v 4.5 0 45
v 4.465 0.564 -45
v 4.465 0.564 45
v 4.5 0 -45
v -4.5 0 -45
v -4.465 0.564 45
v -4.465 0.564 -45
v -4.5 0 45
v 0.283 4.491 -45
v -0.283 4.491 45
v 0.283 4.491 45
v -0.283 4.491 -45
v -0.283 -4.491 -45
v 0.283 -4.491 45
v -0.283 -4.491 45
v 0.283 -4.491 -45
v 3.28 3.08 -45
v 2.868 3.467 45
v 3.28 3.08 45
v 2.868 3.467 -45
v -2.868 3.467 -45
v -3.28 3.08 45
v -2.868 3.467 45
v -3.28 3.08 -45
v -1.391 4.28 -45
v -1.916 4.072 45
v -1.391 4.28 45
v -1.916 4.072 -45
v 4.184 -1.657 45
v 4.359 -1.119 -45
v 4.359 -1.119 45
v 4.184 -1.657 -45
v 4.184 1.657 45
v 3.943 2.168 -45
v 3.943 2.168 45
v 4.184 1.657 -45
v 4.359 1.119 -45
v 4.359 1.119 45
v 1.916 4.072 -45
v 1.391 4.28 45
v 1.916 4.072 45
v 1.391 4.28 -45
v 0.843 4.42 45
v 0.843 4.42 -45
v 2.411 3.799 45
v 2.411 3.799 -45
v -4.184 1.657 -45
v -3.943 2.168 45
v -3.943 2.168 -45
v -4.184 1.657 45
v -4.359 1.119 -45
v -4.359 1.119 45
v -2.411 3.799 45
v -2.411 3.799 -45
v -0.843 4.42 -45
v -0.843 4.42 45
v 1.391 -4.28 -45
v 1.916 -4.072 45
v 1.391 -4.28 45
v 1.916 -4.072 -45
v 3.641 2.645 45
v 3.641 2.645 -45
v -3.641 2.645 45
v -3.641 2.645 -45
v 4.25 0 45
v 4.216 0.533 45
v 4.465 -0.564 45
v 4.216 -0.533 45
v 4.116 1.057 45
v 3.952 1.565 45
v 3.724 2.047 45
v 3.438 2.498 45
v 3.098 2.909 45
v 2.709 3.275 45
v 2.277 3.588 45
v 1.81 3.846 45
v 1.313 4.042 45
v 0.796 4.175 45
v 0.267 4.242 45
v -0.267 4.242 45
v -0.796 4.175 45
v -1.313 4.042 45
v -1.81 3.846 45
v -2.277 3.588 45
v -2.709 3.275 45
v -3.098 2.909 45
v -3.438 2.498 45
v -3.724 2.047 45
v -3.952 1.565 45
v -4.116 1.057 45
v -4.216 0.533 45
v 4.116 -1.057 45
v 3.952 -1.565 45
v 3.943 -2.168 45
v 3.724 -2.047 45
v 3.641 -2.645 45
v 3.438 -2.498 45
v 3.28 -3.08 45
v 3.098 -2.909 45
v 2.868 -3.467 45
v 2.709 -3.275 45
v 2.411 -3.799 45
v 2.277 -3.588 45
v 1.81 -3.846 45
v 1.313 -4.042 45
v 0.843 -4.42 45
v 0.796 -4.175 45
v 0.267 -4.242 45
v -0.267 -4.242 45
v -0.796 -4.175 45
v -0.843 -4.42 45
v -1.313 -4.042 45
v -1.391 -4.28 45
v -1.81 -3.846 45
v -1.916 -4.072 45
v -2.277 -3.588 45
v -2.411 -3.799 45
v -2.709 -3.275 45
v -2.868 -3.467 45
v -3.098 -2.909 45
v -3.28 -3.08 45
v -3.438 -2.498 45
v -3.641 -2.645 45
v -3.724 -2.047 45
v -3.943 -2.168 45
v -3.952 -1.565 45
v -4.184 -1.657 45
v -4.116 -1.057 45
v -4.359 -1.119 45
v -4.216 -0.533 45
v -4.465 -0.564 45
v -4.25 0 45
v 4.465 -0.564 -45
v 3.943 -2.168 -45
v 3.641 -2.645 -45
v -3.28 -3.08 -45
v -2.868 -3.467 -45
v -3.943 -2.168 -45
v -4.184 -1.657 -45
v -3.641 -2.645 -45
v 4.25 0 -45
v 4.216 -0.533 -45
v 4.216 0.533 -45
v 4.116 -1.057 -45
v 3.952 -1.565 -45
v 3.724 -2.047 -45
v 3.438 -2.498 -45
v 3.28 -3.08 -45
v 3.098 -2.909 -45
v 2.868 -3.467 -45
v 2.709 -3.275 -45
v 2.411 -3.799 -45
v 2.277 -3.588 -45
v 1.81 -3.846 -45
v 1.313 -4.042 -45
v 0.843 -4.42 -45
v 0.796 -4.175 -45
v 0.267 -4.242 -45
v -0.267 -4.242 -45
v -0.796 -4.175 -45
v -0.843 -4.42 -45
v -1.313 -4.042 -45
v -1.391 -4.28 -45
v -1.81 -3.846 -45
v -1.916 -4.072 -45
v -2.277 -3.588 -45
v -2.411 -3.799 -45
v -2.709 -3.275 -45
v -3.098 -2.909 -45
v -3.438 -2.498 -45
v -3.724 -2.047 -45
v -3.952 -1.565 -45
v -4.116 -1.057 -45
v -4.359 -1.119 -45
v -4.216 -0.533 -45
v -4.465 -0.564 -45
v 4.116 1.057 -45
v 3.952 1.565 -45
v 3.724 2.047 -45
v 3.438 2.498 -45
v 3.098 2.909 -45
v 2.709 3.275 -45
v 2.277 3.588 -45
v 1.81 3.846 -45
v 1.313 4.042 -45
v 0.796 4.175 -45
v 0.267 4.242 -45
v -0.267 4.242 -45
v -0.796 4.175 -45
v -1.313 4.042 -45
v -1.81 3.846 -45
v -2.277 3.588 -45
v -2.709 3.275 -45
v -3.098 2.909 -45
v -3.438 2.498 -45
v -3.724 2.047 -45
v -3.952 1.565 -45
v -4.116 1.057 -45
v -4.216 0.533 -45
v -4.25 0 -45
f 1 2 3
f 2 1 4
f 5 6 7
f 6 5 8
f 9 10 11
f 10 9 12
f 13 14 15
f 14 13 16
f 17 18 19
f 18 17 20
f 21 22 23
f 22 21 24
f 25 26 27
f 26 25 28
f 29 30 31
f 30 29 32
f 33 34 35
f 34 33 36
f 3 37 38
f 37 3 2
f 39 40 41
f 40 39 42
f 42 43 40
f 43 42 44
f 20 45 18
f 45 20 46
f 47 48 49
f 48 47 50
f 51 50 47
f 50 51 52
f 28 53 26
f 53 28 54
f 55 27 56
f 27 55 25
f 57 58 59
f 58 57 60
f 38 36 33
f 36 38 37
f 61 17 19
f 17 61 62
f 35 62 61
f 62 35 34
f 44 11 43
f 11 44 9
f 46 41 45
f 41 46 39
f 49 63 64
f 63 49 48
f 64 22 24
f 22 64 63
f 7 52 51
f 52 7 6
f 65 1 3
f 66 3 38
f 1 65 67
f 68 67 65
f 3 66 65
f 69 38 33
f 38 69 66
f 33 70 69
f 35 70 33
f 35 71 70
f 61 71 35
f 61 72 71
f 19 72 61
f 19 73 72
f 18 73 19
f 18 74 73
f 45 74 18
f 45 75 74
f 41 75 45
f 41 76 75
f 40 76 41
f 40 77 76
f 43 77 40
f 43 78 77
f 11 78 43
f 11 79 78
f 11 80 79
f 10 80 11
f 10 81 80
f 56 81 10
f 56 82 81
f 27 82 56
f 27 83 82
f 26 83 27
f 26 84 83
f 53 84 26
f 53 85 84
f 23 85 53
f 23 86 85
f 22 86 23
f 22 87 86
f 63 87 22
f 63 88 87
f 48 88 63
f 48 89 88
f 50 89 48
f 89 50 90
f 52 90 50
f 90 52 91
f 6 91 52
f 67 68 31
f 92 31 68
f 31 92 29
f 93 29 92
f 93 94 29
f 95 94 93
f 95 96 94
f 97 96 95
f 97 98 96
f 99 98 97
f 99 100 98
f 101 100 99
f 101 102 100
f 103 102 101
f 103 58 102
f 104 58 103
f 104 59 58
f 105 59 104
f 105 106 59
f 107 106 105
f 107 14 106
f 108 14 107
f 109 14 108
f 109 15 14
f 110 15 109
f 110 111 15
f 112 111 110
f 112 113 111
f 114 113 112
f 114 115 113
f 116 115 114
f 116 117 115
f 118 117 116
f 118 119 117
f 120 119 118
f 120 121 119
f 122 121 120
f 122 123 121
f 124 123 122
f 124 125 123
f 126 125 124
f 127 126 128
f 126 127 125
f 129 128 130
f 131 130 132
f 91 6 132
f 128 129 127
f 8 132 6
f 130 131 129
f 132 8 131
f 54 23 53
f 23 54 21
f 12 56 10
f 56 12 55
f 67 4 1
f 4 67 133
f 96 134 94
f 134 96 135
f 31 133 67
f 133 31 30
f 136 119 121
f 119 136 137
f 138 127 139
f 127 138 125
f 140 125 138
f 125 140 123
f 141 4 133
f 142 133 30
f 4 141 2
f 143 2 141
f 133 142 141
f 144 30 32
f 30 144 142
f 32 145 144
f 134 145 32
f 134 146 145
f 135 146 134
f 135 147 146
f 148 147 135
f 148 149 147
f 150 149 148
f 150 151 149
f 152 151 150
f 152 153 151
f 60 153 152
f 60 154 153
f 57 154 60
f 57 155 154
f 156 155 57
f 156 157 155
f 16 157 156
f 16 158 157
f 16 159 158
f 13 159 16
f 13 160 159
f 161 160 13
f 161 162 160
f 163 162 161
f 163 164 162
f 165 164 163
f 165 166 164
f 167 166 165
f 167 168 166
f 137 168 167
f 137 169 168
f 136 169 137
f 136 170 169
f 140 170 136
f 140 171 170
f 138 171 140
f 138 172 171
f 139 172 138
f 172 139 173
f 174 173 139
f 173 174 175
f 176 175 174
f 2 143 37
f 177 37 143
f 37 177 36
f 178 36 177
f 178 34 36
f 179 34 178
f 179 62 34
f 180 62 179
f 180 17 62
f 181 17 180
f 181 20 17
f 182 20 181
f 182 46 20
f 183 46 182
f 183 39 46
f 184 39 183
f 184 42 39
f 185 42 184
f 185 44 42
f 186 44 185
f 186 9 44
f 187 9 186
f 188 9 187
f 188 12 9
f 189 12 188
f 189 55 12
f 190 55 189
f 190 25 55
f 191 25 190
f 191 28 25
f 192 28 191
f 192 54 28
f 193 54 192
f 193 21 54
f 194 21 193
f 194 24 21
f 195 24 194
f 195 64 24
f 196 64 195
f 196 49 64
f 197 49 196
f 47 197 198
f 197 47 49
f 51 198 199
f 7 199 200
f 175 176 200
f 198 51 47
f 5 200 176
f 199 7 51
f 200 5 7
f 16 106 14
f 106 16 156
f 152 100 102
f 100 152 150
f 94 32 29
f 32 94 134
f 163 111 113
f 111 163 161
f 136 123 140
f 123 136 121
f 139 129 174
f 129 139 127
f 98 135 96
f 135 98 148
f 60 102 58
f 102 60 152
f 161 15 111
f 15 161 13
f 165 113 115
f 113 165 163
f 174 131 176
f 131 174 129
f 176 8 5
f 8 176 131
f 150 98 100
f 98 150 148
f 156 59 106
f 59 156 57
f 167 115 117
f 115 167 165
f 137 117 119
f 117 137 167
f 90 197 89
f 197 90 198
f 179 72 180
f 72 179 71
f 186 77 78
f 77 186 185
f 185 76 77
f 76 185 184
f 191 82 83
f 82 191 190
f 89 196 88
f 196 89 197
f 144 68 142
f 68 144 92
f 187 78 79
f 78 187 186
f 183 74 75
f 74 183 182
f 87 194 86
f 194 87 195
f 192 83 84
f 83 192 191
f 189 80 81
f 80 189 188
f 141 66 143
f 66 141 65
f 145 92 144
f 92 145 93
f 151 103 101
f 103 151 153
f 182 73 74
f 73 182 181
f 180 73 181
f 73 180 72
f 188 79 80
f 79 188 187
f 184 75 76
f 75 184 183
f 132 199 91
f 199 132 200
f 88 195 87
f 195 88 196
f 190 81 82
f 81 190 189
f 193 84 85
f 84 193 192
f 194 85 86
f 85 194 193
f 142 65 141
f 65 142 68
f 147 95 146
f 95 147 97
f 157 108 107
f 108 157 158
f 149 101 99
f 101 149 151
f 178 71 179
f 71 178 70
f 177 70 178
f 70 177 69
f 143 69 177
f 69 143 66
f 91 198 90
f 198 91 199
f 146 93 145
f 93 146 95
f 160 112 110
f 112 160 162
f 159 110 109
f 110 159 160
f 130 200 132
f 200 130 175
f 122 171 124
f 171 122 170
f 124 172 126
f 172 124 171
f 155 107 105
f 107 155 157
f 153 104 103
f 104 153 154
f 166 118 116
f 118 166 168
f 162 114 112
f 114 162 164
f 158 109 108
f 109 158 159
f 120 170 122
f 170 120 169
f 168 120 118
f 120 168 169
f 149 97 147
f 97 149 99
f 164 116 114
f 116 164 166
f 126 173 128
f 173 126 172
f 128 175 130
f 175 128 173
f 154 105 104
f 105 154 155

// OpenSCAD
$fn = 50;


difference() {
	union() {
		translate(v = [0, 0, -45.0000000000]) {
			cylinder(h = 90, r = 4.5000000000);
		}
	}
	union() {
		translate(v = [0, 0, -100.0000000000]) {
			cylinder(h = 200, r = 4.2500000000);
		}
	}
}
